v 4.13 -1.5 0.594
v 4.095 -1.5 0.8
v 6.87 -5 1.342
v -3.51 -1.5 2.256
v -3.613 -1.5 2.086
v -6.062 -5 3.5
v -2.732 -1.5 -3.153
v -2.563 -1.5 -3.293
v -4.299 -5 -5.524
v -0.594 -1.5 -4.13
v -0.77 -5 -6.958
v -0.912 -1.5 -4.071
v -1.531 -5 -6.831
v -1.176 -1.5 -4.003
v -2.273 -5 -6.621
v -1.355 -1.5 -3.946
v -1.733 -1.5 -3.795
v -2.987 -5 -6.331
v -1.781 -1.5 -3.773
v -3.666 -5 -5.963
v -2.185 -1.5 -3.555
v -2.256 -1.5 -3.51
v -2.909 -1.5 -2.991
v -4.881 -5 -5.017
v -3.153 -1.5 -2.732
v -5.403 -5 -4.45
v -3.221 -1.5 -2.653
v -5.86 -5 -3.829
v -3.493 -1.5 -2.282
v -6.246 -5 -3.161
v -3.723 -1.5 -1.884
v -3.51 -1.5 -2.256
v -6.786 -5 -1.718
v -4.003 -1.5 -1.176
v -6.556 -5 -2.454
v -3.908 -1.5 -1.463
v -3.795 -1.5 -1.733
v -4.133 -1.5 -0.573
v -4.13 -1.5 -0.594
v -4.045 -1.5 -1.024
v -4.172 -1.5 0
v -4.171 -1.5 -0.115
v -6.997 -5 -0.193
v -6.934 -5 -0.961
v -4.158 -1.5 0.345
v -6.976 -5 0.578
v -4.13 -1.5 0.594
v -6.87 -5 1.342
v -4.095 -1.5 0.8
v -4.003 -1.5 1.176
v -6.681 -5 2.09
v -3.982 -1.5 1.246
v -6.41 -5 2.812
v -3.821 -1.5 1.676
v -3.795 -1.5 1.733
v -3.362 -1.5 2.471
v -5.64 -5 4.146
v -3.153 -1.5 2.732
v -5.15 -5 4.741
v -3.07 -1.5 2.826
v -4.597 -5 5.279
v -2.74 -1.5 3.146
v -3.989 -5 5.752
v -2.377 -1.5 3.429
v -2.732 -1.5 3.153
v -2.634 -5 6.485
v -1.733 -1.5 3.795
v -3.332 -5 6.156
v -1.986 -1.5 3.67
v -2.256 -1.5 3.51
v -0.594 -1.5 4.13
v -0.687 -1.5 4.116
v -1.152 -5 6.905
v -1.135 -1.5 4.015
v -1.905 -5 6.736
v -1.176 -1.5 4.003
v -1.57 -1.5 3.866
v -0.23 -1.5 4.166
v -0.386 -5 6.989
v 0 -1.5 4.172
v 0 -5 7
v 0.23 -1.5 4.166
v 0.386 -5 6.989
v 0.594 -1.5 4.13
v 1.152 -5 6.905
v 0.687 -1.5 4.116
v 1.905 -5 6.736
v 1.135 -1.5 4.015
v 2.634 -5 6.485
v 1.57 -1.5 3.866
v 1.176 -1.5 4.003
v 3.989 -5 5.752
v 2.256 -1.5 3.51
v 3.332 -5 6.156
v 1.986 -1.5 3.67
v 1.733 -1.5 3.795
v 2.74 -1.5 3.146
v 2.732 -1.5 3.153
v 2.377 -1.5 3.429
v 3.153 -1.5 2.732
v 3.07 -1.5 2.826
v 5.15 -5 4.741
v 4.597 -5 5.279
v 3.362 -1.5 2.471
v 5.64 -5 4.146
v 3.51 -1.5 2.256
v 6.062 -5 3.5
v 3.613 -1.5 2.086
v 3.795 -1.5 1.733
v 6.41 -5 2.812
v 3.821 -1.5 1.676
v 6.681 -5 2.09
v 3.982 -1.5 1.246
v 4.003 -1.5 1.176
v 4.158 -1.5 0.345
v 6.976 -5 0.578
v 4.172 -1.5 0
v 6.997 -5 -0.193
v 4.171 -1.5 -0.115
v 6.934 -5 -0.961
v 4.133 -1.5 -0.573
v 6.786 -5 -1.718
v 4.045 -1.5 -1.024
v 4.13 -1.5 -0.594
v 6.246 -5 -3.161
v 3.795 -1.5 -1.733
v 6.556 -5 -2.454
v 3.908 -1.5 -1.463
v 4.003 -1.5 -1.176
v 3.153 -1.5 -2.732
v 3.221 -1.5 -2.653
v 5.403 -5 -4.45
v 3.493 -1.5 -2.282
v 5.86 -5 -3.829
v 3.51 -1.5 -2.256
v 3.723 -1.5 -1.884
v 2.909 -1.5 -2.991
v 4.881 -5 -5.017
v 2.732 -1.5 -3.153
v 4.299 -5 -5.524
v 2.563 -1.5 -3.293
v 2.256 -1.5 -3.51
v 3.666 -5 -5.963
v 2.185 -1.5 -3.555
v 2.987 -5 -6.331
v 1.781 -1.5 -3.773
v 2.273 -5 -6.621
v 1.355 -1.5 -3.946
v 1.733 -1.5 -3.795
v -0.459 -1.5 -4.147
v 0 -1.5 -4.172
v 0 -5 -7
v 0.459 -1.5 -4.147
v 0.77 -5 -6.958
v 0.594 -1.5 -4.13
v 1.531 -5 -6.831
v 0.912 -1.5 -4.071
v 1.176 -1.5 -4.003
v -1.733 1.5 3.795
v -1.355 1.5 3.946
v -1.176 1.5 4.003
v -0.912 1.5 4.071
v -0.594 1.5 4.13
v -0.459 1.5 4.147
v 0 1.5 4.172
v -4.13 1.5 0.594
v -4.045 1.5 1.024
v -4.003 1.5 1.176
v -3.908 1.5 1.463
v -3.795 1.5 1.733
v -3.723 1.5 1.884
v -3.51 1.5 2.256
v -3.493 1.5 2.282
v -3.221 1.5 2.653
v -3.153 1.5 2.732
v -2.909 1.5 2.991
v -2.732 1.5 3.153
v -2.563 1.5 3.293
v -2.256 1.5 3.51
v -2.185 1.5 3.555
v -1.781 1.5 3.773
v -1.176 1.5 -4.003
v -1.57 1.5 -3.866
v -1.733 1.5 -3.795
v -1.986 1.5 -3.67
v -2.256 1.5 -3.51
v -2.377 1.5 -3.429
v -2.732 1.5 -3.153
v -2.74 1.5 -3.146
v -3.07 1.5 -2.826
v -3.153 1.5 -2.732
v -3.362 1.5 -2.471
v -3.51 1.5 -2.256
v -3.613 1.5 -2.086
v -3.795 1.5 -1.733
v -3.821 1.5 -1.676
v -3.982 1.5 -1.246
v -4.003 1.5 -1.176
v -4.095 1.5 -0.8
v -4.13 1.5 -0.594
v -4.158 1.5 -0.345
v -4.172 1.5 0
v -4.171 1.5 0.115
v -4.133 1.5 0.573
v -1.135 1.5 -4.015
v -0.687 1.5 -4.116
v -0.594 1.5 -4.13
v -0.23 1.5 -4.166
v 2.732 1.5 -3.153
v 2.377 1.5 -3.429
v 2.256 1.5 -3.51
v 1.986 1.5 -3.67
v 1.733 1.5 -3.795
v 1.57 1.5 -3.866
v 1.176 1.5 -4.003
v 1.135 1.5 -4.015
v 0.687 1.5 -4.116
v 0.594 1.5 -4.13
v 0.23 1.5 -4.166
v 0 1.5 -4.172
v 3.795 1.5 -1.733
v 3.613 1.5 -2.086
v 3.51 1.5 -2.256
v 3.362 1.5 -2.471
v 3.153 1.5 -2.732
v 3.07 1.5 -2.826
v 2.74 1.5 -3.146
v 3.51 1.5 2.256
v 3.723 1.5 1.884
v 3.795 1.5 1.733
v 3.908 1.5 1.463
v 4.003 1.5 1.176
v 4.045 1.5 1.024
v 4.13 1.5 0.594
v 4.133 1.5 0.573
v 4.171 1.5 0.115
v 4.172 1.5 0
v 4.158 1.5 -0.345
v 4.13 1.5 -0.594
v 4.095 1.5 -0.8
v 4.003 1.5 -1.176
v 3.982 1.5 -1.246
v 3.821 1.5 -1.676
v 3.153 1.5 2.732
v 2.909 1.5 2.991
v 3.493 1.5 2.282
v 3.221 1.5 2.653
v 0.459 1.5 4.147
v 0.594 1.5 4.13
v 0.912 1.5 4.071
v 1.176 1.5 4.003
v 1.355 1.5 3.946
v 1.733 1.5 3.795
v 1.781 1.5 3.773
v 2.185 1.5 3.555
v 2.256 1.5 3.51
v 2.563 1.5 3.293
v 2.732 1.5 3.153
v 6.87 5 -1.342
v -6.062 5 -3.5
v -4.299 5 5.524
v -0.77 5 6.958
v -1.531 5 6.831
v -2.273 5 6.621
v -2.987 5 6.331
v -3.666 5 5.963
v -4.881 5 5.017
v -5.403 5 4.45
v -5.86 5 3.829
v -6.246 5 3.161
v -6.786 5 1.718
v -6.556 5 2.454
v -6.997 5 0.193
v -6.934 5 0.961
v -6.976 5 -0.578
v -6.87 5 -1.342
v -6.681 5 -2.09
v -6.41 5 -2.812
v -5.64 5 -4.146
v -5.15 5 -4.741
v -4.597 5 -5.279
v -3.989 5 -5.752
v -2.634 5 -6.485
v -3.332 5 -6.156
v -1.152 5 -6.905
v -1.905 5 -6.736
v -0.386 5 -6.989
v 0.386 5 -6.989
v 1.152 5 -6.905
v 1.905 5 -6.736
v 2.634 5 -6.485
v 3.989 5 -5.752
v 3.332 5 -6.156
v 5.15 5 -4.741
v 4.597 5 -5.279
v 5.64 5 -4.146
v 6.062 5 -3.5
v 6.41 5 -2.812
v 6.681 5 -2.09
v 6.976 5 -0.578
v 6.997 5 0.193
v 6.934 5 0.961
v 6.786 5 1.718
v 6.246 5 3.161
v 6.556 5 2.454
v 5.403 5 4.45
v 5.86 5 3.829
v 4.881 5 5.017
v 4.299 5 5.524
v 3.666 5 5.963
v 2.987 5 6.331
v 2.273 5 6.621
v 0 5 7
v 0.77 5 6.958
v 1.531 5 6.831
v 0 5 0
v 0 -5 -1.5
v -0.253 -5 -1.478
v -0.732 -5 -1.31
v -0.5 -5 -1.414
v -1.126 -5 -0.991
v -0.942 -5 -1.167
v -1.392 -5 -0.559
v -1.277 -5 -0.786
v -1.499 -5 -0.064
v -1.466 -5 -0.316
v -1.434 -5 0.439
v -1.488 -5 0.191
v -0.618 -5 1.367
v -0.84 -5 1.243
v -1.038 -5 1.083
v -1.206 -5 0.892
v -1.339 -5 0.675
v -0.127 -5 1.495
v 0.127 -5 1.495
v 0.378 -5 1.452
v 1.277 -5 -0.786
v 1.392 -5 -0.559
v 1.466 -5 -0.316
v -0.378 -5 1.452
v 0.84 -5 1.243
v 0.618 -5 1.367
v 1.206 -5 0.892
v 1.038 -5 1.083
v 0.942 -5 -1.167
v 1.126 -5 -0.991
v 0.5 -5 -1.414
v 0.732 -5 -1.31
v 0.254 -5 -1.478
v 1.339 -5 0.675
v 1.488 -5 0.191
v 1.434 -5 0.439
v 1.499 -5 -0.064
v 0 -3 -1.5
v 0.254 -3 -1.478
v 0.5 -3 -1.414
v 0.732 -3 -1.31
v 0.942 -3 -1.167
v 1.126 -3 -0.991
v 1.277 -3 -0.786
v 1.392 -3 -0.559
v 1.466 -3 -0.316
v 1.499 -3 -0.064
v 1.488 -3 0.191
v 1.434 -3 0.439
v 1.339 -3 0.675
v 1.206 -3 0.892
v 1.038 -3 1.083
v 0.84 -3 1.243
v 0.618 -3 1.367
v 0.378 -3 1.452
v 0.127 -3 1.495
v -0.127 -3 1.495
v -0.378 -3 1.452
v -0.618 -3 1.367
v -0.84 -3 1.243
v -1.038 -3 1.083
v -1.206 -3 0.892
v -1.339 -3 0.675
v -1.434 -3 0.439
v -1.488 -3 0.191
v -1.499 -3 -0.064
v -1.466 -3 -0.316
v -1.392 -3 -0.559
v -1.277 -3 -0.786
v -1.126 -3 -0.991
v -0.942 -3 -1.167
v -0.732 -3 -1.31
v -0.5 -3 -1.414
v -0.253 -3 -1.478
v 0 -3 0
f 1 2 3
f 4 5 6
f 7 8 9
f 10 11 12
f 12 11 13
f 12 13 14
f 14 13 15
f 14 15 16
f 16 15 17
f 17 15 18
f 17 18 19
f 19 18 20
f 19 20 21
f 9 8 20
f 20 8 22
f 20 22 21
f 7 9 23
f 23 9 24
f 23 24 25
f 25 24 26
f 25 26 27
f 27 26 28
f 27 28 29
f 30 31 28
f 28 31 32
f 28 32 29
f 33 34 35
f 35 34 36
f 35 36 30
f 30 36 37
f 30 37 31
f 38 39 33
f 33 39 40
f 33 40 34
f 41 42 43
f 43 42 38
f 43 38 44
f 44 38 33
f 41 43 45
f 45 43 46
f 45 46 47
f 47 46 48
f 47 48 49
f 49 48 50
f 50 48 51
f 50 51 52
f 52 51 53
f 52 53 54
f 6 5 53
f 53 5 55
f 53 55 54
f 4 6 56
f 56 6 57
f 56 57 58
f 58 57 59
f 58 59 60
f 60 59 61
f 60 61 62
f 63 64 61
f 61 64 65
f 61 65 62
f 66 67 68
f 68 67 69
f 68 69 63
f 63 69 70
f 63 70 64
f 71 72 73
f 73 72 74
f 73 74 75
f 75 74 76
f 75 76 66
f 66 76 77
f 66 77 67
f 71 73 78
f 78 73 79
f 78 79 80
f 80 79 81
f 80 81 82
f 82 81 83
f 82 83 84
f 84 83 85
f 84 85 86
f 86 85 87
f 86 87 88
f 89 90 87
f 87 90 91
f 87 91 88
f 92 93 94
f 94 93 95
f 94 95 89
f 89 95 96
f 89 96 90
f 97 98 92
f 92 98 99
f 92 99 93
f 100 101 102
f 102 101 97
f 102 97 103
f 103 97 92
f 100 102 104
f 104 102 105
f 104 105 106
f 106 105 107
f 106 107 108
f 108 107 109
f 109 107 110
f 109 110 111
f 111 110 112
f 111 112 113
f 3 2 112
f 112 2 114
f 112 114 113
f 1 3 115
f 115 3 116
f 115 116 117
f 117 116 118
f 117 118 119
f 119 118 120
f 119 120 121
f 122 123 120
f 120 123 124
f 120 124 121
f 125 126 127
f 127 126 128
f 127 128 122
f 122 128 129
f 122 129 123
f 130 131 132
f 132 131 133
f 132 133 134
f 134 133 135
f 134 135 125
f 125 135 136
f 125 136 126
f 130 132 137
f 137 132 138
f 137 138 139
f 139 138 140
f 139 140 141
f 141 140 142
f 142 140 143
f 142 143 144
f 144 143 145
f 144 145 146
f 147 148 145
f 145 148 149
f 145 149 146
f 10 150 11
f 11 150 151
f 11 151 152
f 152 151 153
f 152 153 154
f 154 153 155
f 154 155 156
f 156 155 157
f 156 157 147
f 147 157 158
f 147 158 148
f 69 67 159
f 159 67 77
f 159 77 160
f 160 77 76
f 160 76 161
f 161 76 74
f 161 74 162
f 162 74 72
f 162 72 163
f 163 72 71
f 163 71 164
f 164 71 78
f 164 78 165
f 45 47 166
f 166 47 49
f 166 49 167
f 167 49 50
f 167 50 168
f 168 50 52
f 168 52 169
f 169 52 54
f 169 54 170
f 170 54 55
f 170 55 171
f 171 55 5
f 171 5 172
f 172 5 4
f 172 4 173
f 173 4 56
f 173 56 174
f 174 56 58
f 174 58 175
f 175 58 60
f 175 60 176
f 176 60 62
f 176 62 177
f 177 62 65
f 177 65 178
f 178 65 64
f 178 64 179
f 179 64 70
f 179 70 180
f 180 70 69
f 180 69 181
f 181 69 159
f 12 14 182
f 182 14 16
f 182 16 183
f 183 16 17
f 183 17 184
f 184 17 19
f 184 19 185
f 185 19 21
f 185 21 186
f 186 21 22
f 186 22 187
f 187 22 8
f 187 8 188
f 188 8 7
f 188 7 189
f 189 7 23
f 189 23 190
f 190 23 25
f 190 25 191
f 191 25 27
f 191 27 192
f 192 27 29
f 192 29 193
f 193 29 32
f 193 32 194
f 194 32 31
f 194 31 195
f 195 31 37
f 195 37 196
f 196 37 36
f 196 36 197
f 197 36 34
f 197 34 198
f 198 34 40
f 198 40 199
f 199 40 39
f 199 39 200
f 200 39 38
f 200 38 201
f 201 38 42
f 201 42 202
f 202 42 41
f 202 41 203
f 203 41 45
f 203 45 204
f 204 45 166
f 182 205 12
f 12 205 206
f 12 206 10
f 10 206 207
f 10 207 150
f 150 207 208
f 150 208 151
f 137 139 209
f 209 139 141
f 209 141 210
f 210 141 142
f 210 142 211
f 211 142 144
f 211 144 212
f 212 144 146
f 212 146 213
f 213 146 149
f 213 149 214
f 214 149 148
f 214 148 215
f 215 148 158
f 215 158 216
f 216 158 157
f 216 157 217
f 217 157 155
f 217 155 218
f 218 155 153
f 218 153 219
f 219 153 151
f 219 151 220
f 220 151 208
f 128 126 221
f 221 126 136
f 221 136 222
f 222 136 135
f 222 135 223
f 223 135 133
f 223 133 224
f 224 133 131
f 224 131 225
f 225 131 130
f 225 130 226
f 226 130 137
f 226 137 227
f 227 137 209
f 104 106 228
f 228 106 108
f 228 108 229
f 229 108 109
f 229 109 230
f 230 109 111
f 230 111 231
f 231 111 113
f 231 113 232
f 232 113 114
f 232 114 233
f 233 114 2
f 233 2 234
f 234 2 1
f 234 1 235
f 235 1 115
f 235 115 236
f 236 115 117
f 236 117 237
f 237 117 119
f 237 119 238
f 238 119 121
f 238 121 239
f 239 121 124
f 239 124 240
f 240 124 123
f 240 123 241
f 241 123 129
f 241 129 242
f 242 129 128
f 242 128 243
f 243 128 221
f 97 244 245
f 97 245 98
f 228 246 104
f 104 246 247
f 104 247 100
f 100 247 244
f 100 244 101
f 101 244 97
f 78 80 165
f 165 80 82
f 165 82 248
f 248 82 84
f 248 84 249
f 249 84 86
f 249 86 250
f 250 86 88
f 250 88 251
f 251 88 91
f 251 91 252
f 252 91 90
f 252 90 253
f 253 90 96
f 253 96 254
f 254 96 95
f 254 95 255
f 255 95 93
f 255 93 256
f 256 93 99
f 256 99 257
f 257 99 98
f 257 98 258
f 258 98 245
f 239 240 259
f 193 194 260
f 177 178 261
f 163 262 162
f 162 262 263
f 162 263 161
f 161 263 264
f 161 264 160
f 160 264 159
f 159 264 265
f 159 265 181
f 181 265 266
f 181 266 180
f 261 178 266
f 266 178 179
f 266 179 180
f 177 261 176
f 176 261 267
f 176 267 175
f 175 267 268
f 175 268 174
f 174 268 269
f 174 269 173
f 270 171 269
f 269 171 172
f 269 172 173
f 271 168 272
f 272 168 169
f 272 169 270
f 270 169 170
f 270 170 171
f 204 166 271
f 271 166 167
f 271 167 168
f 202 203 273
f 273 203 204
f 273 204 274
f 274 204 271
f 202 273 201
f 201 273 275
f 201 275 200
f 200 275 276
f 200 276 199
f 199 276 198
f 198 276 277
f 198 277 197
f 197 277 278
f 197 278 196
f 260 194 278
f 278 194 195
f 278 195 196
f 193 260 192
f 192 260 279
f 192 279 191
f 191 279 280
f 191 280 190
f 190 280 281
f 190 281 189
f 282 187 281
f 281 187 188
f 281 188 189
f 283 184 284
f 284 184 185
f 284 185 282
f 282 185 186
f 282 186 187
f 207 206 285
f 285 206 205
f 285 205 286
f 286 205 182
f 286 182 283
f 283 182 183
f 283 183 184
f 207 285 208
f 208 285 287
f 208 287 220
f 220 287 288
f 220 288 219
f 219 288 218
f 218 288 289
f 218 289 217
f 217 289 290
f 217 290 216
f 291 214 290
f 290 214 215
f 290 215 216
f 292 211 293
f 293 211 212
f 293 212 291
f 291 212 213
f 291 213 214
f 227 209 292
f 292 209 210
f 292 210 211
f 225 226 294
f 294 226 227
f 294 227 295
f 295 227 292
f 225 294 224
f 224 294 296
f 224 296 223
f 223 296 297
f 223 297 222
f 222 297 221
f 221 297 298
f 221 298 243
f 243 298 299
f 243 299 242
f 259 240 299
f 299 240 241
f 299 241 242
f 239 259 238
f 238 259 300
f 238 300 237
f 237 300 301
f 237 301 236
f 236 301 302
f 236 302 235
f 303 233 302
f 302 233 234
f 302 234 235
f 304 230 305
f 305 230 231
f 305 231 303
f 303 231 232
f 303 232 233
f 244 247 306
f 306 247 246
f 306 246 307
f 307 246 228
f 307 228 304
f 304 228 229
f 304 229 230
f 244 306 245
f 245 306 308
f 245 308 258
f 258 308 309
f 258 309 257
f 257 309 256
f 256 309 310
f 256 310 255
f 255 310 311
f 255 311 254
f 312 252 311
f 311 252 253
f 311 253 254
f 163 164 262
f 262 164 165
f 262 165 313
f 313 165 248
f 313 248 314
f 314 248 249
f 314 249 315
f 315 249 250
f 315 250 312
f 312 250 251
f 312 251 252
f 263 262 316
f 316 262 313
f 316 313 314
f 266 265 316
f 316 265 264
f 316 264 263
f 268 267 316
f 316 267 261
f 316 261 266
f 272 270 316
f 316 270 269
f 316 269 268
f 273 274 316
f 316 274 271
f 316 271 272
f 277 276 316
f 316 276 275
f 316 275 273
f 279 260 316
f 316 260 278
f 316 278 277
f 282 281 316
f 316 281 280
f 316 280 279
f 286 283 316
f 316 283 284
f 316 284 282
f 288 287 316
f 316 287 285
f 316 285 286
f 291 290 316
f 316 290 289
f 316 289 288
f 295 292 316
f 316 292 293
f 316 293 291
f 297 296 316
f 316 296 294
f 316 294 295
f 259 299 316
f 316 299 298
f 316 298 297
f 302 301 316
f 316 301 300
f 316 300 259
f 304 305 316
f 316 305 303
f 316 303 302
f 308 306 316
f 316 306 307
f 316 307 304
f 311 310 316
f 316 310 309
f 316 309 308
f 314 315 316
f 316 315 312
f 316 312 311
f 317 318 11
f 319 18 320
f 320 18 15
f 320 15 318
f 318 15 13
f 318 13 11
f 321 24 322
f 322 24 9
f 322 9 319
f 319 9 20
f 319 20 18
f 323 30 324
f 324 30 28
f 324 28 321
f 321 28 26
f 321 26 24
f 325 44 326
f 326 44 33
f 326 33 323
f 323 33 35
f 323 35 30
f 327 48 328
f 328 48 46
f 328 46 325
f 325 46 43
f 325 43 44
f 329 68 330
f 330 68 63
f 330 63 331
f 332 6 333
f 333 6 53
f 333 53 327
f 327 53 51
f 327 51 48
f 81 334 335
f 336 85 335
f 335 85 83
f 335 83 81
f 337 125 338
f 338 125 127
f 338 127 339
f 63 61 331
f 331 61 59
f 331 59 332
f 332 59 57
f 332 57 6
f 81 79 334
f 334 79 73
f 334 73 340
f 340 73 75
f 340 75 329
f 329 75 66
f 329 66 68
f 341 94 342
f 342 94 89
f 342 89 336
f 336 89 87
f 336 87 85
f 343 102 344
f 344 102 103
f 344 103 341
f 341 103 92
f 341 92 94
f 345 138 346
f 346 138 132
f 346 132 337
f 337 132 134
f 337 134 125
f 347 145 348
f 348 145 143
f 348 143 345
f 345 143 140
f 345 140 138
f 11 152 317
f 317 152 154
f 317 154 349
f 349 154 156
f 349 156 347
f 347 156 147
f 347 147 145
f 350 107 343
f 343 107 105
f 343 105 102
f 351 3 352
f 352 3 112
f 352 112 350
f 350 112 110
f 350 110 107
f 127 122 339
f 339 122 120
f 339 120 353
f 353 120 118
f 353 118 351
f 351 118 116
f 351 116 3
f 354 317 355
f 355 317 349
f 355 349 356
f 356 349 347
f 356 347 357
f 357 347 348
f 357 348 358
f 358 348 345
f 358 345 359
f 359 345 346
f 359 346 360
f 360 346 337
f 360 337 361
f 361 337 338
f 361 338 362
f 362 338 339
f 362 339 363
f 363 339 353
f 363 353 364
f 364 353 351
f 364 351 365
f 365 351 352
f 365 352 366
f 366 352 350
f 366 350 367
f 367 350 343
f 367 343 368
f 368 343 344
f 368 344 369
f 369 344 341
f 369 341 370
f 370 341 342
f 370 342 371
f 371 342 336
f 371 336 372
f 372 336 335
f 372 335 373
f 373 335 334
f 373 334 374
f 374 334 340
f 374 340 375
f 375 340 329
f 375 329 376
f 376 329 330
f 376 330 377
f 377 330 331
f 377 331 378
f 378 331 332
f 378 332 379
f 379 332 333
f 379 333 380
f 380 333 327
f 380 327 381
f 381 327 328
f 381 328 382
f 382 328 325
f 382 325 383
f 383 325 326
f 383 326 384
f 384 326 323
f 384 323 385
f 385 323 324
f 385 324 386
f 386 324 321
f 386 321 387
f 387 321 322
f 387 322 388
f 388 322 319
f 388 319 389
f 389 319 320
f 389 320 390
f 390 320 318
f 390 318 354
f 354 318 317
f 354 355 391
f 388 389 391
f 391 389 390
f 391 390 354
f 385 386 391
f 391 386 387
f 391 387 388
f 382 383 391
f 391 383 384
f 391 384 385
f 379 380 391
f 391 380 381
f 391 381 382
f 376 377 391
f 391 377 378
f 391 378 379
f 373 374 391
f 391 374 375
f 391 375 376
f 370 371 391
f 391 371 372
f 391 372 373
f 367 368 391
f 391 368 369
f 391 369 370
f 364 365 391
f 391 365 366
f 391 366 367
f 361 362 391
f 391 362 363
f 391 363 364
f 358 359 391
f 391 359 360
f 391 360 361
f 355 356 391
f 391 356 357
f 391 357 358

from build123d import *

# Parameters (mm, degrees)
CROQUIS2_R            = 1.5
CORTAR_EXTRUIR1_DEPTH = 2


with BuildPart() as part:
    # Croquis1 → Revolución3 (revolve)
    with BuildSketch(Plane.XY):
        Polygon((0, 5), (0, -5), (7, -5), (4.172417728, -1.5), (4.172417728, 1.5), (7, 5), align=None)
    revolve(axis=Axis((0, 14.056584816, 0), (0, -1, 0)))

    # Croquis2 → Cortar-Extruir1 (cut)
    with BuildSketch(Plane(origin=(0, -5, 0), x_dir=(-1, 0, 0), z_dir=(0, -1, 0))):
        Circle(CROQUIS2_R)
    extrude(amount=-CORTAR_EXTRUIR1_DEPTH, mode=Mode.SUBTRACT)


solid = part.part
